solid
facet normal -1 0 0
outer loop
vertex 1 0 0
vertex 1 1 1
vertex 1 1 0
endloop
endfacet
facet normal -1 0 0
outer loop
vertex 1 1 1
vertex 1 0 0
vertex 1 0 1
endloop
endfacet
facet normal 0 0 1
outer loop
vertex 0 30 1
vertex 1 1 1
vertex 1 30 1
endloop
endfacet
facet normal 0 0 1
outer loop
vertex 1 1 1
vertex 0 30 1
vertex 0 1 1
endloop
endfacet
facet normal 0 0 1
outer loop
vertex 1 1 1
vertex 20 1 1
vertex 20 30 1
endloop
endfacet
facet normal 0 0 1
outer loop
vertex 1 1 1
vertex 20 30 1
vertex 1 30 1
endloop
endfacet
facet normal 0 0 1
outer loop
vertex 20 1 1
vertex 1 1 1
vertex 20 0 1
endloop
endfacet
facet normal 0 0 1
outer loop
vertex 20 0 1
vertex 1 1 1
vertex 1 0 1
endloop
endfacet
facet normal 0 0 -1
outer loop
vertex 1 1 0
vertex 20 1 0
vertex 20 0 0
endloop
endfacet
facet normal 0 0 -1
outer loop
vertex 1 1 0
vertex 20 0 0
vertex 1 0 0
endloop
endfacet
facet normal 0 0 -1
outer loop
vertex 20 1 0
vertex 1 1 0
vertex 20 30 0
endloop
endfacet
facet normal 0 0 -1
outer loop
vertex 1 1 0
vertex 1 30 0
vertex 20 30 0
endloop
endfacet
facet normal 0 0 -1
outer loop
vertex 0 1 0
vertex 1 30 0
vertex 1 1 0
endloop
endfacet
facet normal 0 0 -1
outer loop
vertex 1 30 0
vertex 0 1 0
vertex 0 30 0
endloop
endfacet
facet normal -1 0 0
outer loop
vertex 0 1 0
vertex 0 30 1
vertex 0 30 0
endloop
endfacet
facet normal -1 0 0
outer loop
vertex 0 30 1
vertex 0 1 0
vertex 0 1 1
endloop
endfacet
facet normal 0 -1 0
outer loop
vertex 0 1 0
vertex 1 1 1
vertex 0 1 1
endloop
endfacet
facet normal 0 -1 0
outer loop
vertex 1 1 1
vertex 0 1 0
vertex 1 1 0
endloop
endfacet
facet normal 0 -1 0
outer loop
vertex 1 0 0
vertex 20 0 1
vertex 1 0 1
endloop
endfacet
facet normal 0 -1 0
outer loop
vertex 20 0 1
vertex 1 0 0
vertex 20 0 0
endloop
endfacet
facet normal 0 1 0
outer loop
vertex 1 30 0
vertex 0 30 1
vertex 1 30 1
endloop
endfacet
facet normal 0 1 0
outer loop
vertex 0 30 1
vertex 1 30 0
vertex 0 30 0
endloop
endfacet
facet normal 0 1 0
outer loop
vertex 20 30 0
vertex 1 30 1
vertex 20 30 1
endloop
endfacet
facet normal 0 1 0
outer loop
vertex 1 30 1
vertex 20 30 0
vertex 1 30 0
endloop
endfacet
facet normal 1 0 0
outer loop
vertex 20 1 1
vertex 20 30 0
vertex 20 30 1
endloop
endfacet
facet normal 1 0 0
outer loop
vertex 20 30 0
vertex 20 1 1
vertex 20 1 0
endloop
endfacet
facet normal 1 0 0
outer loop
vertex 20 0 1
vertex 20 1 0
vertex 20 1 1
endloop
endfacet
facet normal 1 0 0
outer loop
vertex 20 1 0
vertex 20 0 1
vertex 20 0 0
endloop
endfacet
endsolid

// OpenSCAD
module checkerboard(size_x, size_y) {
  difference() {
    cube([size_x, size_y, 1]);
    
    for (x = [0:size_x-1]) {
      for (y = [0:size_y-1]) {
        translate([x * size_x, y * size_y]) {
          cube([1, 1, 1]);
        }
      }
    }
  }
}

checkerboard(20, 30);
